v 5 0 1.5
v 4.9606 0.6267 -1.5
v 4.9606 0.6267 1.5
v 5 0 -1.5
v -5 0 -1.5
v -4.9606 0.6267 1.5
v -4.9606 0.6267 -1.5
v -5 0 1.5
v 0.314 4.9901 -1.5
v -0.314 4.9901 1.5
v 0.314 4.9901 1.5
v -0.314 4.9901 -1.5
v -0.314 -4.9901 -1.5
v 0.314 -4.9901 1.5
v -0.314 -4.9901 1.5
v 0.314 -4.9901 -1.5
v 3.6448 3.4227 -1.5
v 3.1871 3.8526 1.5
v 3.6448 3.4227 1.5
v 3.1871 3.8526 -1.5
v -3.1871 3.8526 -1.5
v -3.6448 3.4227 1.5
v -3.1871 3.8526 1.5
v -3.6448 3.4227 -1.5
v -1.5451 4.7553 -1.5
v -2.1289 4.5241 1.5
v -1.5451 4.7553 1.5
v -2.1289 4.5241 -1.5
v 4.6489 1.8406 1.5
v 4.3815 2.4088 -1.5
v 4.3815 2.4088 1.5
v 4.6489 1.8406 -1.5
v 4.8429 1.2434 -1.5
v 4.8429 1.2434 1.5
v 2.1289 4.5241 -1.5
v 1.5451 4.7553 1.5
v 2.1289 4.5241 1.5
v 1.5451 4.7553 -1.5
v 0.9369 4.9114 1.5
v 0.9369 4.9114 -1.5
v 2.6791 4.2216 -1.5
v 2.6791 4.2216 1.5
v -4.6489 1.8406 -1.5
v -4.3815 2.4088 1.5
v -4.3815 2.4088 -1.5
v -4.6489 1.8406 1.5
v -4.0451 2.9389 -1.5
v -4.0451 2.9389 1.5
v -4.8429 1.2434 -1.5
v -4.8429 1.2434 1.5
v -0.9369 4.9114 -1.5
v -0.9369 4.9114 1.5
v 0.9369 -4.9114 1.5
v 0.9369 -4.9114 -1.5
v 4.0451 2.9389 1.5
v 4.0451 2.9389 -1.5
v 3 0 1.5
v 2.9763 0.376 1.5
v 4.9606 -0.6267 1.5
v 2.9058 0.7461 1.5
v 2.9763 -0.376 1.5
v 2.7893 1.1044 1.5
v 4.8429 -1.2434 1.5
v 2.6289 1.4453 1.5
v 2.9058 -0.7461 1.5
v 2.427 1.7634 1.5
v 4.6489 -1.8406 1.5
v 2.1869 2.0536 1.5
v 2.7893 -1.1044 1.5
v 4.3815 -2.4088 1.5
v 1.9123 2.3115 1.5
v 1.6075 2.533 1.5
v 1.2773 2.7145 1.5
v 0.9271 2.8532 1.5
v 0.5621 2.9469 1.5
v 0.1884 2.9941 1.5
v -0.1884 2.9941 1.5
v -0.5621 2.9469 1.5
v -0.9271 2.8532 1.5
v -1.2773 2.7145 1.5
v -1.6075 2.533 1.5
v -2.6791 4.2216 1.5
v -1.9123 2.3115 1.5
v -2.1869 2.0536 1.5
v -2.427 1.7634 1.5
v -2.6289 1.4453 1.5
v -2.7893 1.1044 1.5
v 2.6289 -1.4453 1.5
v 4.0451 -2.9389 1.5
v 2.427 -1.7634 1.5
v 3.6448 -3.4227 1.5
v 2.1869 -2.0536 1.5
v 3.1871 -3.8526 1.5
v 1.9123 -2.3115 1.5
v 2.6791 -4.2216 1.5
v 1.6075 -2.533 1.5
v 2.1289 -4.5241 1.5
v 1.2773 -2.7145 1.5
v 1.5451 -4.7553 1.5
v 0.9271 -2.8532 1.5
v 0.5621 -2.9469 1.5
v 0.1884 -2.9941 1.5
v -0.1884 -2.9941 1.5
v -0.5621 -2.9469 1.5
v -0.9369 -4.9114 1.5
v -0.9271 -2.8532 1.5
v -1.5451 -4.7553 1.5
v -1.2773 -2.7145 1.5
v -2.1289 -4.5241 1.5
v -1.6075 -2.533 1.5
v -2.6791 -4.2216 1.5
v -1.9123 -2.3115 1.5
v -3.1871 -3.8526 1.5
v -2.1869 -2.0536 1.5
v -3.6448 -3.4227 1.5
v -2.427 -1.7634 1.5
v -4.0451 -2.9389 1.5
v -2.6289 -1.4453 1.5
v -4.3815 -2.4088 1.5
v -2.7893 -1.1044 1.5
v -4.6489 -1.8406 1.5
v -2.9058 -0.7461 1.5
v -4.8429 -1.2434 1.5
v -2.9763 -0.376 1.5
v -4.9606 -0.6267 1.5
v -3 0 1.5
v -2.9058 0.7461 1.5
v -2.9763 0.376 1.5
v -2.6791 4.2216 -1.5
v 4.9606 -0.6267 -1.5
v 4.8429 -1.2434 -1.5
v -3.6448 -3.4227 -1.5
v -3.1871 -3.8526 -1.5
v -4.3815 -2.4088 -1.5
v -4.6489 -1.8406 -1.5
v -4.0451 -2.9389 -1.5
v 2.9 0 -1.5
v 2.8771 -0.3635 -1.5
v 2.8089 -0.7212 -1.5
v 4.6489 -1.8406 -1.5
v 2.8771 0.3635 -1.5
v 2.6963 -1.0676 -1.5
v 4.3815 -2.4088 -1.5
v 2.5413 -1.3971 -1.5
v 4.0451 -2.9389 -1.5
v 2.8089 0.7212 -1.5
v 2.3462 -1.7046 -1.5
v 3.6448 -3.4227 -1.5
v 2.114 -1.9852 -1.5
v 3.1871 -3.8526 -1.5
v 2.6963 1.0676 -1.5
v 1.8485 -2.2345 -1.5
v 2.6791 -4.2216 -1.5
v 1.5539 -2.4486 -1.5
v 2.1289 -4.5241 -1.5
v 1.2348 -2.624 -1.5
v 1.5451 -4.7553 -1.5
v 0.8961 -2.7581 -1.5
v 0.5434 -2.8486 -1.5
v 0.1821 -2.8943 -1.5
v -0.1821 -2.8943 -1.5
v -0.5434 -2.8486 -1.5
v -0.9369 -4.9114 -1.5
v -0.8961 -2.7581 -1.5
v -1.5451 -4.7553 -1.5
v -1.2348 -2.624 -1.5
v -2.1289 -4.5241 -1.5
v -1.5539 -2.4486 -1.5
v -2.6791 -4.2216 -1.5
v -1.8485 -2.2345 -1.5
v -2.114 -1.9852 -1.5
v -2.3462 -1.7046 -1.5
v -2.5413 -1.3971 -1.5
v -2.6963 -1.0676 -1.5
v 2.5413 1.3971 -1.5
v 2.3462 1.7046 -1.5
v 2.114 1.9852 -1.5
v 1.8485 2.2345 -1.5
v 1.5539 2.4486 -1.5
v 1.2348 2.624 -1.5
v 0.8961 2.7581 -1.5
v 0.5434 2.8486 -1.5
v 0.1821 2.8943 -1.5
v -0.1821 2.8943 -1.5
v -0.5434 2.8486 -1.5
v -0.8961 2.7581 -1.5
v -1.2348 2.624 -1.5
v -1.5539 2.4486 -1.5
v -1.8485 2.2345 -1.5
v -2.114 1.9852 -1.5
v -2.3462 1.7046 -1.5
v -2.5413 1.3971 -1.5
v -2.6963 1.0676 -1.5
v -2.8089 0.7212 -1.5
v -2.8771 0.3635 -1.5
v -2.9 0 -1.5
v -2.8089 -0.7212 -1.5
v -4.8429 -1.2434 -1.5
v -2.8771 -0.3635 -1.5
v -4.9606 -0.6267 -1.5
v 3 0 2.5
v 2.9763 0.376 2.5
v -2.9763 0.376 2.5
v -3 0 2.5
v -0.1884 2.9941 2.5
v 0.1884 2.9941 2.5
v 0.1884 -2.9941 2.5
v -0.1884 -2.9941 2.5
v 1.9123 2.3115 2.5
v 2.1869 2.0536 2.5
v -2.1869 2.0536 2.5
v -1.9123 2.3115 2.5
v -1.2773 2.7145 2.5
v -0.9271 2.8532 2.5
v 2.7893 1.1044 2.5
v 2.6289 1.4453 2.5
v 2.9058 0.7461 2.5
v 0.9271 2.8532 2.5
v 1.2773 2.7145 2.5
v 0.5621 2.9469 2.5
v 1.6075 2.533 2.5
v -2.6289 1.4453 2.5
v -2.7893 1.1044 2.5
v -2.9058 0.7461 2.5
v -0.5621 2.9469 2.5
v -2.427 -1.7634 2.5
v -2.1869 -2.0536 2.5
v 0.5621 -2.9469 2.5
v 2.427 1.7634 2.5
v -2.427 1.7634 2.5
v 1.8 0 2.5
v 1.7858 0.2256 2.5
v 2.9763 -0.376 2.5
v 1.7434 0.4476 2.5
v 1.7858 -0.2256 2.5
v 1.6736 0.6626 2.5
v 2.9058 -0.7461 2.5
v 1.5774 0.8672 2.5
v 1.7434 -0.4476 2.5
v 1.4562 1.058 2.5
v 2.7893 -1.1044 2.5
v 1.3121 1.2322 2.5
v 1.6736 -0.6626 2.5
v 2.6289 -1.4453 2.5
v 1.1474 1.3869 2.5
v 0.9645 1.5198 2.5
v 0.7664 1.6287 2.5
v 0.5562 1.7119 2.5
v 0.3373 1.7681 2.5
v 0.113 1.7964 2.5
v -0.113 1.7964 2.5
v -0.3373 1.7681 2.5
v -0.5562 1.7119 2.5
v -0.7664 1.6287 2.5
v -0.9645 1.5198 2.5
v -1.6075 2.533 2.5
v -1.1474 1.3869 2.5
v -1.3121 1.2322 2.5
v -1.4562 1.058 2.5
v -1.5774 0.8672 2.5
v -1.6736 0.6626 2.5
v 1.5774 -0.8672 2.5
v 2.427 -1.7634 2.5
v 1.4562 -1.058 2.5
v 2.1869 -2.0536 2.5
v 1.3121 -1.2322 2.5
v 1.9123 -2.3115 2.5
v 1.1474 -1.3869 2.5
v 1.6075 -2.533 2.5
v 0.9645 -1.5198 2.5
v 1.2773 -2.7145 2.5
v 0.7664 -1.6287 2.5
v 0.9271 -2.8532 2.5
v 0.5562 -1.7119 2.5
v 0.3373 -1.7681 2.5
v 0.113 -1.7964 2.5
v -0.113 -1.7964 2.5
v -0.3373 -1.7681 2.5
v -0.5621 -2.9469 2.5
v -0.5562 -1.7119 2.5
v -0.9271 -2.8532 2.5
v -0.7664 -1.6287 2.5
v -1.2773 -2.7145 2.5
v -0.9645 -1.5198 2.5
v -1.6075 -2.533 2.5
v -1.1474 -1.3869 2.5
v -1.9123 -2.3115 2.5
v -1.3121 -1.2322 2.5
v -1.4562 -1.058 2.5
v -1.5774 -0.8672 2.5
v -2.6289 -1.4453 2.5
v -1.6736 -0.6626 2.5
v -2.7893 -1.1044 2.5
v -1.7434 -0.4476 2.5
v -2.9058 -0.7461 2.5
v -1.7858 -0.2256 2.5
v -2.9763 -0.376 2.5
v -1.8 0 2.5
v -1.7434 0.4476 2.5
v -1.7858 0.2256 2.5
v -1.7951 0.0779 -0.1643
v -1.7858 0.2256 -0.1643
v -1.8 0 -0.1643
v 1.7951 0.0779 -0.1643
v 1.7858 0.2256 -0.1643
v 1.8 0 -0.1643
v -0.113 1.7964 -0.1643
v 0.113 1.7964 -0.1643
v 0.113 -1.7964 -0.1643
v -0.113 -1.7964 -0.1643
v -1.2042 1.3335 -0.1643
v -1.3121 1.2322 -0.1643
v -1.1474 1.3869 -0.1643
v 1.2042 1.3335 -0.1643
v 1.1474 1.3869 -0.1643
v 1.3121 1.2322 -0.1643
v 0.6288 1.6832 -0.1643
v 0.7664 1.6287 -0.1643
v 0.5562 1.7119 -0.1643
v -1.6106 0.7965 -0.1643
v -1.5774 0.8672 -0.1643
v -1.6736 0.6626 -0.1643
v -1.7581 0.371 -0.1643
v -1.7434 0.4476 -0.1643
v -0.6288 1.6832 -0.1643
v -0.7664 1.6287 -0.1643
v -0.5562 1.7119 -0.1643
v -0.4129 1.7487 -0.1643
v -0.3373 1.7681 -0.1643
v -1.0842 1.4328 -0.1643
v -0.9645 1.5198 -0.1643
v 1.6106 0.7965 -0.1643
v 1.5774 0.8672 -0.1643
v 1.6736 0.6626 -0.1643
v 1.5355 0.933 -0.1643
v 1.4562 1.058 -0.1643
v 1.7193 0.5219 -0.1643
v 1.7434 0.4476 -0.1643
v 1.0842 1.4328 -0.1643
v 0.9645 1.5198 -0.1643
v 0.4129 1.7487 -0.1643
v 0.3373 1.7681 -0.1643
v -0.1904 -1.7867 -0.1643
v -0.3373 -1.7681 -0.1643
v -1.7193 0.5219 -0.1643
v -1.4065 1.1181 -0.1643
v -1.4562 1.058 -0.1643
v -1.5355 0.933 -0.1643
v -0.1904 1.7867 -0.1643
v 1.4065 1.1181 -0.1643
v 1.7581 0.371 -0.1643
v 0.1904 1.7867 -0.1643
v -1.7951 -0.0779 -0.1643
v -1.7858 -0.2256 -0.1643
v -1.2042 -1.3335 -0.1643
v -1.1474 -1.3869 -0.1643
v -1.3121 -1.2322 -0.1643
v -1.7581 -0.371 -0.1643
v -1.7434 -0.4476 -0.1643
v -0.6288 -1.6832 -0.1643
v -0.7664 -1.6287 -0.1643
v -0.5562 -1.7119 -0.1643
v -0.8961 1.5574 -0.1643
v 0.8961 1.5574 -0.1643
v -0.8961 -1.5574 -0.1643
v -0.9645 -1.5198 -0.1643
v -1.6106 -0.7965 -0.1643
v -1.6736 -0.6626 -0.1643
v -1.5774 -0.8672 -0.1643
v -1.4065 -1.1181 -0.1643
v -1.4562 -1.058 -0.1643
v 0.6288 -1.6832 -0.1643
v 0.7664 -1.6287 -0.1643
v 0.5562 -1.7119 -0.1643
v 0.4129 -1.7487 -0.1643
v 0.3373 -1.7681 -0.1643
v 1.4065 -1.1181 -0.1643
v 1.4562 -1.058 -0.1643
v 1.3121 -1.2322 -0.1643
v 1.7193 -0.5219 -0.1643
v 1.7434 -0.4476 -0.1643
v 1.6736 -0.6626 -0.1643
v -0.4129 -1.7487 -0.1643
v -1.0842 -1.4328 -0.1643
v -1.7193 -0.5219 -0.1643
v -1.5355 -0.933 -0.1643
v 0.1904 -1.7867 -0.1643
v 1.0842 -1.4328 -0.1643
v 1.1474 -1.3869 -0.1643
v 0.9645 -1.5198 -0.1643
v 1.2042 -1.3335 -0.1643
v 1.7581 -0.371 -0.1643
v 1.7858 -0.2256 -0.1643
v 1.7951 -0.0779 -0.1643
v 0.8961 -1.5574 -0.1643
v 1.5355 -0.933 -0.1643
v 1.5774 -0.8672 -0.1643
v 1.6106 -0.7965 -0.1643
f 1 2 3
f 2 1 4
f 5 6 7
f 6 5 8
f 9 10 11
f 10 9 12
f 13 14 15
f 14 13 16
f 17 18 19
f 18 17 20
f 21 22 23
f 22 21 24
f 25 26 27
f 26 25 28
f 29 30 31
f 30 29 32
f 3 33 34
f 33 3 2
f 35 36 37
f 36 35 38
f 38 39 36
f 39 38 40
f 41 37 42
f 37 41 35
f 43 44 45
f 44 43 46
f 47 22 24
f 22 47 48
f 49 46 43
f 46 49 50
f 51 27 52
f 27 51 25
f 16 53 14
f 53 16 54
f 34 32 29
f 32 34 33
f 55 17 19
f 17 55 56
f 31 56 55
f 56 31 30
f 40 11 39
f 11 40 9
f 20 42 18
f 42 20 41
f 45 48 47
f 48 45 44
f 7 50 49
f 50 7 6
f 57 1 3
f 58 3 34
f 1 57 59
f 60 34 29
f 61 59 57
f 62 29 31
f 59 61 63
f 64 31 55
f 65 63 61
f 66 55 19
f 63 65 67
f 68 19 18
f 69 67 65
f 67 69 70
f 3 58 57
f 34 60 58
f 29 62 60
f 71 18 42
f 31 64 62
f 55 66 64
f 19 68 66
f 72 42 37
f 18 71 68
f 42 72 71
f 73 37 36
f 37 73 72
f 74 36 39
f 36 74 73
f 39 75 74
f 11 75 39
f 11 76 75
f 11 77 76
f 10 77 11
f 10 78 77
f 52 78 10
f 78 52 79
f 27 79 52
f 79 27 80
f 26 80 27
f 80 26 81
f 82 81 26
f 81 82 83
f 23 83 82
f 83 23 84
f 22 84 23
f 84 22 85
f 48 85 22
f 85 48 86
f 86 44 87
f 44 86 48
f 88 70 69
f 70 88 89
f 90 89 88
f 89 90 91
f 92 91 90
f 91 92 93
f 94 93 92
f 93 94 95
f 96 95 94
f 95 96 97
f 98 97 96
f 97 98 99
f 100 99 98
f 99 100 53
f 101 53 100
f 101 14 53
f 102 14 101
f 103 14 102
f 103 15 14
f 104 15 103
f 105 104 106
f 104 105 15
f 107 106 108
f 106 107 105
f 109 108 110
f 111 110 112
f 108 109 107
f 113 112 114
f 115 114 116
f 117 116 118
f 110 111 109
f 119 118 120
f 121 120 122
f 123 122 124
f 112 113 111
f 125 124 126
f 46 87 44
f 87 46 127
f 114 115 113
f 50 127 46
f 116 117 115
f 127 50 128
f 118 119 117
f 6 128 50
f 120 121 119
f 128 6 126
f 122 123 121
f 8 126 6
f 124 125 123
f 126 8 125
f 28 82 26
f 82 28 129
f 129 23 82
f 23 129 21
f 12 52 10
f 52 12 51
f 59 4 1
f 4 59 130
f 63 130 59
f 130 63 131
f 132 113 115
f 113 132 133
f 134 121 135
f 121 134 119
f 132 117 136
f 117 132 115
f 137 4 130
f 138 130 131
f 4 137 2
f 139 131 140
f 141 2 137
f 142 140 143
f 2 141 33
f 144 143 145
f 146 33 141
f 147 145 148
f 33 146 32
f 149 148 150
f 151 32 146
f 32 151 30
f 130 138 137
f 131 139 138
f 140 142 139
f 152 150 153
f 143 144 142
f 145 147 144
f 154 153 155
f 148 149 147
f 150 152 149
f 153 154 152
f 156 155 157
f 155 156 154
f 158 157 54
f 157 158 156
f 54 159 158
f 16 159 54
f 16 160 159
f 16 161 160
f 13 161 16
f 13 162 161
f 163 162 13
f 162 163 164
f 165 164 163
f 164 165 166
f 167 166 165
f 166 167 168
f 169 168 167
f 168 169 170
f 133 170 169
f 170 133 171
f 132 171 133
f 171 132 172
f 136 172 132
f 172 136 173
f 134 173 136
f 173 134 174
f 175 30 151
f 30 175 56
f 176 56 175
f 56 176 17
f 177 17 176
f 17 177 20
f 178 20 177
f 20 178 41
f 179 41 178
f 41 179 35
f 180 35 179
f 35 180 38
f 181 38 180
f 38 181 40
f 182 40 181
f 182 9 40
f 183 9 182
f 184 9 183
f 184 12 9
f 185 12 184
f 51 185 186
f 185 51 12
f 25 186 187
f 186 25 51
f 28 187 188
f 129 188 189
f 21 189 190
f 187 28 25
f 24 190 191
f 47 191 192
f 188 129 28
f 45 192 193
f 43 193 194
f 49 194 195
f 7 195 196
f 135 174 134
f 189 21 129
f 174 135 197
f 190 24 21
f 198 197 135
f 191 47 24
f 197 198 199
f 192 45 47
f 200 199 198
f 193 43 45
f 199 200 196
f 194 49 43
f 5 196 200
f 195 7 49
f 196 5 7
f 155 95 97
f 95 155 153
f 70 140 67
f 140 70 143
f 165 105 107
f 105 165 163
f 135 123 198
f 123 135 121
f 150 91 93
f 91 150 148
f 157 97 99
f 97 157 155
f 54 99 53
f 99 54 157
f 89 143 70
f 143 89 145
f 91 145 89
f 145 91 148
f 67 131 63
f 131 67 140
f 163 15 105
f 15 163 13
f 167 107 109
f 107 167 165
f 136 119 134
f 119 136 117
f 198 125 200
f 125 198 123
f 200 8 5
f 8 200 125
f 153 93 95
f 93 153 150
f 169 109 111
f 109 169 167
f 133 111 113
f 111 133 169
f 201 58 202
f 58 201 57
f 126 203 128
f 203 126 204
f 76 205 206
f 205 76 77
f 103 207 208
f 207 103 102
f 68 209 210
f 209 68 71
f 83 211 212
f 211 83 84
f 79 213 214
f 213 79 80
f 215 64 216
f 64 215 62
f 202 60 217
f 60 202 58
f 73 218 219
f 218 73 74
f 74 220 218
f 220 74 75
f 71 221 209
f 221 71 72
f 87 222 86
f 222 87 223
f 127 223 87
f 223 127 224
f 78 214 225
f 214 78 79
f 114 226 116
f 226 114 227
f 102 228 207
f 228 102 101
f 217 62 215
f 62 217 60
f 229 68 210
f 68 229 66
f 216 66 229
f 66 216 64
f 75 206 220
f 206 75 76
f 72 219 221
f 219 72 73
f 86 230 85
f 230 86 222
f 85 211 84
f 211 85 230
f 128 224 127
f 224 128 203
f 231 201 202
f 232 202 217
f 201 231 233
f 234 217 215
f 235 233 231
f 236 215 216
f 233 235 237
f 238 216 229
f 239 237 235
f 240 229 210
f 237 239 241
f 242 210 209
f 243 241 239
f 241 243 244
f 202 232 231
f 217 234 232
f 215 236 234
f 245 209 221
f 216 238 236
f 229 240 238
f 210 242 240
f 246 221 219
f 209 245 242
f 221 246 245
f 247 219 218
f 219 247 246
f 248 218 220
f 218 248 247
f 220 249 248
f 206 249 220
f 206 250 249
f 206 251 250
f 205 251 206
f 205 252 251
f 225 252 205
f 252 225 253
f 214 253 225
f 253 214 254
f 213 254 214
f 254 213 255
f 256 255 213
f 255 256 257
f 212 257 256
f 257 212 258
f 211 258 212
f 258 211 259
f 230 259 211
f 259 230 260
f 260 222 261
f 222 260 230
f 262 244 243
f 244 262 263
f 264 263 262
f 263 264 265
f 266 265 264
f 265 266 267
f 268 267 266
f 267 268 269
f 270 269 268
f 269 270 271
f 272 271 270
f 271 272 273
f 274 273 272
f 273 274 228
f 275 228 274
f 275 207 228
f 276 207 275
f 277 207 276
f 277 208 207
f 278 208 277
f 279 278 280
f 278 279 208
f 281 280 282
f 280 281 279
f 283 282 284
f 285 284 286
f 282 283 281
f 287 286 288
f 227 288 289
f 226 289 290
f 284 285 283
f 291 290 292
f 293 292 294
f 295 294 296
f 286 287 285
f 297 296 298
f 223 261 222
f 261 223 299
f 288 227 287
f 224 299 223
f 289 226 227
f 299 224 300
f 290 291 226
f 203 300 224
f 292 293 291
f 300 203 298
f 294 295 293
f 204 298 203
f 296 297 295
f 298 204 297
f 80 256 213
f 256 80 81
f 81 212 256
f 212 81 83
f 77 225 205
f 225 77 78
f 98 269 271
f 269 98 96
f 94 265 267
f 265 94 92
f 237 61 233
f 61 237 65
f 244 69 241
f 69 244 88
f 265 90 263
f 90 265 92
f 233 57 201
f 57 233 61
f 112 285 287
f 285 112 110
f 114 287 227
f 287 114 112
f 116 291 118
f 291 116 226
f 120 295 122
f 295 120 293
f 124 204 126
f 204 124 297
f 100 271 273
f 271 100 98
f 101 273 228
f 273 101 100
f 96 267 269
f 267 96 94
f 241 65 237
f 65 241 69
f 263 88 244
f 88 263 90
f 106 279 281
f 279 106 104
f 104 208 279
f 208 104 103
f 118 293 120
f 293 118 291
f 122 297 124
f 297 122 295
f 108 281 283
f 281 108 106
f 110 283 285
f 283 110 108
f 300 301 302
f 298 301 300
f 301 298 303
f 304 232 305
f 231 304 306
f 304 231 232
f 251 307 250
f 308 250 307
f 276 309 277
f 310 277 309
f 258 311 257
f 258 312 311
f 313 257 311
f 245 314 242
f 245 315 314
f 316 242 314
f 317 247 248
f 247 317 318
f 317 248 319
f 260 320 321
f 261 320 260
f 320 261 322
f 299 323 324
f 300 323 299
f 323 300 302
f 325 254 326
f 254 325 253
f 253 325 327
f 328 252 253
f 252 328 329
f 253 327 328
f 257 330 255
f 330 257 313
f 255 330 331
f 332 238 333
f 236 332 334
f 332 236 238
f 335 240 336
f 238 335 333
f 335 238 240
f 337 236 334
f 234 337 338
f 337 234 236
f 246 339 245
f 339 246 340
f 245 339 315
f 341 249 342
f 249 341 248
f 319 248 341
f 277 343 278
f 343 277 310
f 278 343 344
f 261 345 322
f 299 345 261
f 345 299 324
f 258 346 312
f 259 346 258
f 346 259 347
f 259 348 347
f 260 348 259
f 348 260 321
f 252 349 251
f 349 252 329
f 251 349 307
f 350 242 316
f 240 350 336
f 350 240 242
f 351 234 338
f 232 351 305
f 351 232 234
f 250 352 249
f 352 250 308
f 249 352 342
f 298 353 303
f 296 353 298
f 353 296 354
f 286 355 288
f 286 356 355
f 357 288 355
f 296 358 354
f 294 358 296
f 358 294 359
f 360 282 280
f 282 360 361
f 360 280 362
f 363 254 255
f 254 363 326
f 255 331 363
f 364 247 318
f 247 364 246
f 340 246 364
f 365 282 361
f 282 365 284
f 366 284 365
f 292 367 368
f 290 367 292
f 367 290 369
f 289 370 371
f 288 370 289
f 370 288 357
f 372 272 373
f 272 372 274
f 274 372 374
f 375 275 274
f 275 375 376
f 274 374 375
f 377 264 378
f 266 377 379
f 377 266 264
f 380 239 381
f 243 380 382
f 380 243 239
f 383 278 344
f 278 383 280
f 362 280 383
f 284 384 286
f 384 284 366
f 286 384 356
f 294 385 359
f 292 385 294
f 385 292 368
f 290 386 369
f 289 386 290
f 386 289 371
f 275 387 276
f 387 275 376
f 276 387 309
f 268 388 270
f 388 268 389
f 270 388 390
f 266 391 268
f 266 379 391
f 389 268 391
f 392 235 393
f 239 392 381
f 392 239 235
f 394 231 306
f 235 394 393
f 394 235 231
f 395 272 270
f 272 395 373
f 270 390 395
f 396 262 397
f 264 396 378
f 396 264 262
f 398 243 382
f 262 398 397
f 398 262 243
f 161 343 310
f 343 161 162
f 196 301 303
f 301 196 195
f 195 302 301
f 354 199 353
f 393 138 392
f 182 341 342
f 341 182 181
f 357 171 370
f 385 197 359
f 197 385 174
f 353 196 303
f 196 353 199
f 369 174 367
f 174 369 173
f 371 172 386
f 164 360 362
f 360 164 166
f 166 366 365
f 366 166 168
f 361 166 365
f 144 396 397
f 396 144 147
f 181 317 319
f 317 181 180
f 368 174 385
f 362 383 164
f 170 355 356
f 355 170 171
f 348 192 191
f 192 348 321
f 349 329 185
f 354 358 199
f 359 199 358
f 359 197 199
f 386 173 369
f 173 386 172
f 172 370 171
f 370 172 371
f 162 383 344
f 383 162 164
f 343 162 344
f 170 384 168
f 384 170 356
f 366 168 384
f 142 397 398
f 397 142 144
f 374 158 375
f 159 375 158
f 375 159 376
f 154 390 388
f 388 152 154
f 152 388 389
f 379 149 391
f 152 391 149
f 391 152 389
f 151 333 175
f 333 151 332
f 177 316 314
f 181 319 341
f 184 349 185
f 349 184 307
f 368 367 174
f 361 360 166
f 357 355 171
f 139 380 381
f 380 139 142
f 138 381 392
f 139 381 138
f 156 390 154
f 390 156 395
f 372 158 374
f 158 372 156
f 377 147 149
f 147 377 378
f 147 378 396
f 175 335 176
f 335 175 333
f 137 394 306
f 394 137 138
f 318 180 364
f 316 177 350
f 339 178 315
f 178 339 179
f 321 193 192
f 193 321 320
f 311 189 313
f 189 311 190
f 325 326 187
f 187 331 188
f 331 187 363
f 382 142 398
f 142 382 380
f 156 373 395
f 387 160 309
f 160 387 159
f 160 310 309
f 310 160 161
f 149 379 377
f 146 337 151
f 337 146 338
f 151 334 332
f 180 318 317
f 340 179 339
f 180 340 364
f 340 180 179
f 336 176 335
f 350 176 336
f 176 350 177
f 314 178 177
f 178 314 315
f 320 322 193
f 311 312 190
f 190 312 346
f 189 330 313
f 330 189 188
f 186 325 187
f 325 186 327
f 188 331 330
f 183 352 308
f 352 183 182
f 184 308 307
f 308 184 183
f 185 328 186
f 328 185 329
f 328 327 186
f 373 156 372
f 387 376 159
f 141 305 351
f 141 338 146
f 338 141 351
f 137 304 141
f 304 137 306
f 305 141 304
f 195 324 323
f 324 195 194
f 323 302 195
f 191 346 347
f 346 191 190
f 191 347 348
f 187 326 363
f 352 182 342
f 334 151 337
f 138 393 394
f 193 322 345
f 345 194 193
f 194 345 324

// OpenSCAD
$fn = 50;


difference() {
	union() {
		translate(v = [0, 0, -1.5000000000]) {
			cylinder(h = 3, r = 5.0000000000);
		}
		translate(v = [0, 0, -1.5000000000]) {
			cylinder(h = 4, r = 3.0000000000);
		}
	}
	union() {
		translate(v = [0, 0, -1.5000000000]) {
			rotate(a = [0, 180, 0]) {
				difference() {
					union() {
						translate(v = [0, 0, -4.0000000000]) {
							cylinder(h = 4, r = 1.5000000000);
						}
						translate(v = [0, 0, -4.0000000000]) {
							cylinder(h = 4, r = 1.8000000000);
						}
						translate(v = [0, 0, -1.7000000000]) {
							cylinder(h = 1.7000000000, r1 = 1.5000000000, r2 = 2.9000000000);
						}
						translate(v = [0, 0, -4.0000000000]) {
							cylinder(h = 4, r = 1.5000000000);
						}
					}
					union();
				}
			}
		}
		translate(v = [0, 0, -50.0000000000]) {
			cylinder(h = 100, r = 1.5000000000);
		}
	}
}
